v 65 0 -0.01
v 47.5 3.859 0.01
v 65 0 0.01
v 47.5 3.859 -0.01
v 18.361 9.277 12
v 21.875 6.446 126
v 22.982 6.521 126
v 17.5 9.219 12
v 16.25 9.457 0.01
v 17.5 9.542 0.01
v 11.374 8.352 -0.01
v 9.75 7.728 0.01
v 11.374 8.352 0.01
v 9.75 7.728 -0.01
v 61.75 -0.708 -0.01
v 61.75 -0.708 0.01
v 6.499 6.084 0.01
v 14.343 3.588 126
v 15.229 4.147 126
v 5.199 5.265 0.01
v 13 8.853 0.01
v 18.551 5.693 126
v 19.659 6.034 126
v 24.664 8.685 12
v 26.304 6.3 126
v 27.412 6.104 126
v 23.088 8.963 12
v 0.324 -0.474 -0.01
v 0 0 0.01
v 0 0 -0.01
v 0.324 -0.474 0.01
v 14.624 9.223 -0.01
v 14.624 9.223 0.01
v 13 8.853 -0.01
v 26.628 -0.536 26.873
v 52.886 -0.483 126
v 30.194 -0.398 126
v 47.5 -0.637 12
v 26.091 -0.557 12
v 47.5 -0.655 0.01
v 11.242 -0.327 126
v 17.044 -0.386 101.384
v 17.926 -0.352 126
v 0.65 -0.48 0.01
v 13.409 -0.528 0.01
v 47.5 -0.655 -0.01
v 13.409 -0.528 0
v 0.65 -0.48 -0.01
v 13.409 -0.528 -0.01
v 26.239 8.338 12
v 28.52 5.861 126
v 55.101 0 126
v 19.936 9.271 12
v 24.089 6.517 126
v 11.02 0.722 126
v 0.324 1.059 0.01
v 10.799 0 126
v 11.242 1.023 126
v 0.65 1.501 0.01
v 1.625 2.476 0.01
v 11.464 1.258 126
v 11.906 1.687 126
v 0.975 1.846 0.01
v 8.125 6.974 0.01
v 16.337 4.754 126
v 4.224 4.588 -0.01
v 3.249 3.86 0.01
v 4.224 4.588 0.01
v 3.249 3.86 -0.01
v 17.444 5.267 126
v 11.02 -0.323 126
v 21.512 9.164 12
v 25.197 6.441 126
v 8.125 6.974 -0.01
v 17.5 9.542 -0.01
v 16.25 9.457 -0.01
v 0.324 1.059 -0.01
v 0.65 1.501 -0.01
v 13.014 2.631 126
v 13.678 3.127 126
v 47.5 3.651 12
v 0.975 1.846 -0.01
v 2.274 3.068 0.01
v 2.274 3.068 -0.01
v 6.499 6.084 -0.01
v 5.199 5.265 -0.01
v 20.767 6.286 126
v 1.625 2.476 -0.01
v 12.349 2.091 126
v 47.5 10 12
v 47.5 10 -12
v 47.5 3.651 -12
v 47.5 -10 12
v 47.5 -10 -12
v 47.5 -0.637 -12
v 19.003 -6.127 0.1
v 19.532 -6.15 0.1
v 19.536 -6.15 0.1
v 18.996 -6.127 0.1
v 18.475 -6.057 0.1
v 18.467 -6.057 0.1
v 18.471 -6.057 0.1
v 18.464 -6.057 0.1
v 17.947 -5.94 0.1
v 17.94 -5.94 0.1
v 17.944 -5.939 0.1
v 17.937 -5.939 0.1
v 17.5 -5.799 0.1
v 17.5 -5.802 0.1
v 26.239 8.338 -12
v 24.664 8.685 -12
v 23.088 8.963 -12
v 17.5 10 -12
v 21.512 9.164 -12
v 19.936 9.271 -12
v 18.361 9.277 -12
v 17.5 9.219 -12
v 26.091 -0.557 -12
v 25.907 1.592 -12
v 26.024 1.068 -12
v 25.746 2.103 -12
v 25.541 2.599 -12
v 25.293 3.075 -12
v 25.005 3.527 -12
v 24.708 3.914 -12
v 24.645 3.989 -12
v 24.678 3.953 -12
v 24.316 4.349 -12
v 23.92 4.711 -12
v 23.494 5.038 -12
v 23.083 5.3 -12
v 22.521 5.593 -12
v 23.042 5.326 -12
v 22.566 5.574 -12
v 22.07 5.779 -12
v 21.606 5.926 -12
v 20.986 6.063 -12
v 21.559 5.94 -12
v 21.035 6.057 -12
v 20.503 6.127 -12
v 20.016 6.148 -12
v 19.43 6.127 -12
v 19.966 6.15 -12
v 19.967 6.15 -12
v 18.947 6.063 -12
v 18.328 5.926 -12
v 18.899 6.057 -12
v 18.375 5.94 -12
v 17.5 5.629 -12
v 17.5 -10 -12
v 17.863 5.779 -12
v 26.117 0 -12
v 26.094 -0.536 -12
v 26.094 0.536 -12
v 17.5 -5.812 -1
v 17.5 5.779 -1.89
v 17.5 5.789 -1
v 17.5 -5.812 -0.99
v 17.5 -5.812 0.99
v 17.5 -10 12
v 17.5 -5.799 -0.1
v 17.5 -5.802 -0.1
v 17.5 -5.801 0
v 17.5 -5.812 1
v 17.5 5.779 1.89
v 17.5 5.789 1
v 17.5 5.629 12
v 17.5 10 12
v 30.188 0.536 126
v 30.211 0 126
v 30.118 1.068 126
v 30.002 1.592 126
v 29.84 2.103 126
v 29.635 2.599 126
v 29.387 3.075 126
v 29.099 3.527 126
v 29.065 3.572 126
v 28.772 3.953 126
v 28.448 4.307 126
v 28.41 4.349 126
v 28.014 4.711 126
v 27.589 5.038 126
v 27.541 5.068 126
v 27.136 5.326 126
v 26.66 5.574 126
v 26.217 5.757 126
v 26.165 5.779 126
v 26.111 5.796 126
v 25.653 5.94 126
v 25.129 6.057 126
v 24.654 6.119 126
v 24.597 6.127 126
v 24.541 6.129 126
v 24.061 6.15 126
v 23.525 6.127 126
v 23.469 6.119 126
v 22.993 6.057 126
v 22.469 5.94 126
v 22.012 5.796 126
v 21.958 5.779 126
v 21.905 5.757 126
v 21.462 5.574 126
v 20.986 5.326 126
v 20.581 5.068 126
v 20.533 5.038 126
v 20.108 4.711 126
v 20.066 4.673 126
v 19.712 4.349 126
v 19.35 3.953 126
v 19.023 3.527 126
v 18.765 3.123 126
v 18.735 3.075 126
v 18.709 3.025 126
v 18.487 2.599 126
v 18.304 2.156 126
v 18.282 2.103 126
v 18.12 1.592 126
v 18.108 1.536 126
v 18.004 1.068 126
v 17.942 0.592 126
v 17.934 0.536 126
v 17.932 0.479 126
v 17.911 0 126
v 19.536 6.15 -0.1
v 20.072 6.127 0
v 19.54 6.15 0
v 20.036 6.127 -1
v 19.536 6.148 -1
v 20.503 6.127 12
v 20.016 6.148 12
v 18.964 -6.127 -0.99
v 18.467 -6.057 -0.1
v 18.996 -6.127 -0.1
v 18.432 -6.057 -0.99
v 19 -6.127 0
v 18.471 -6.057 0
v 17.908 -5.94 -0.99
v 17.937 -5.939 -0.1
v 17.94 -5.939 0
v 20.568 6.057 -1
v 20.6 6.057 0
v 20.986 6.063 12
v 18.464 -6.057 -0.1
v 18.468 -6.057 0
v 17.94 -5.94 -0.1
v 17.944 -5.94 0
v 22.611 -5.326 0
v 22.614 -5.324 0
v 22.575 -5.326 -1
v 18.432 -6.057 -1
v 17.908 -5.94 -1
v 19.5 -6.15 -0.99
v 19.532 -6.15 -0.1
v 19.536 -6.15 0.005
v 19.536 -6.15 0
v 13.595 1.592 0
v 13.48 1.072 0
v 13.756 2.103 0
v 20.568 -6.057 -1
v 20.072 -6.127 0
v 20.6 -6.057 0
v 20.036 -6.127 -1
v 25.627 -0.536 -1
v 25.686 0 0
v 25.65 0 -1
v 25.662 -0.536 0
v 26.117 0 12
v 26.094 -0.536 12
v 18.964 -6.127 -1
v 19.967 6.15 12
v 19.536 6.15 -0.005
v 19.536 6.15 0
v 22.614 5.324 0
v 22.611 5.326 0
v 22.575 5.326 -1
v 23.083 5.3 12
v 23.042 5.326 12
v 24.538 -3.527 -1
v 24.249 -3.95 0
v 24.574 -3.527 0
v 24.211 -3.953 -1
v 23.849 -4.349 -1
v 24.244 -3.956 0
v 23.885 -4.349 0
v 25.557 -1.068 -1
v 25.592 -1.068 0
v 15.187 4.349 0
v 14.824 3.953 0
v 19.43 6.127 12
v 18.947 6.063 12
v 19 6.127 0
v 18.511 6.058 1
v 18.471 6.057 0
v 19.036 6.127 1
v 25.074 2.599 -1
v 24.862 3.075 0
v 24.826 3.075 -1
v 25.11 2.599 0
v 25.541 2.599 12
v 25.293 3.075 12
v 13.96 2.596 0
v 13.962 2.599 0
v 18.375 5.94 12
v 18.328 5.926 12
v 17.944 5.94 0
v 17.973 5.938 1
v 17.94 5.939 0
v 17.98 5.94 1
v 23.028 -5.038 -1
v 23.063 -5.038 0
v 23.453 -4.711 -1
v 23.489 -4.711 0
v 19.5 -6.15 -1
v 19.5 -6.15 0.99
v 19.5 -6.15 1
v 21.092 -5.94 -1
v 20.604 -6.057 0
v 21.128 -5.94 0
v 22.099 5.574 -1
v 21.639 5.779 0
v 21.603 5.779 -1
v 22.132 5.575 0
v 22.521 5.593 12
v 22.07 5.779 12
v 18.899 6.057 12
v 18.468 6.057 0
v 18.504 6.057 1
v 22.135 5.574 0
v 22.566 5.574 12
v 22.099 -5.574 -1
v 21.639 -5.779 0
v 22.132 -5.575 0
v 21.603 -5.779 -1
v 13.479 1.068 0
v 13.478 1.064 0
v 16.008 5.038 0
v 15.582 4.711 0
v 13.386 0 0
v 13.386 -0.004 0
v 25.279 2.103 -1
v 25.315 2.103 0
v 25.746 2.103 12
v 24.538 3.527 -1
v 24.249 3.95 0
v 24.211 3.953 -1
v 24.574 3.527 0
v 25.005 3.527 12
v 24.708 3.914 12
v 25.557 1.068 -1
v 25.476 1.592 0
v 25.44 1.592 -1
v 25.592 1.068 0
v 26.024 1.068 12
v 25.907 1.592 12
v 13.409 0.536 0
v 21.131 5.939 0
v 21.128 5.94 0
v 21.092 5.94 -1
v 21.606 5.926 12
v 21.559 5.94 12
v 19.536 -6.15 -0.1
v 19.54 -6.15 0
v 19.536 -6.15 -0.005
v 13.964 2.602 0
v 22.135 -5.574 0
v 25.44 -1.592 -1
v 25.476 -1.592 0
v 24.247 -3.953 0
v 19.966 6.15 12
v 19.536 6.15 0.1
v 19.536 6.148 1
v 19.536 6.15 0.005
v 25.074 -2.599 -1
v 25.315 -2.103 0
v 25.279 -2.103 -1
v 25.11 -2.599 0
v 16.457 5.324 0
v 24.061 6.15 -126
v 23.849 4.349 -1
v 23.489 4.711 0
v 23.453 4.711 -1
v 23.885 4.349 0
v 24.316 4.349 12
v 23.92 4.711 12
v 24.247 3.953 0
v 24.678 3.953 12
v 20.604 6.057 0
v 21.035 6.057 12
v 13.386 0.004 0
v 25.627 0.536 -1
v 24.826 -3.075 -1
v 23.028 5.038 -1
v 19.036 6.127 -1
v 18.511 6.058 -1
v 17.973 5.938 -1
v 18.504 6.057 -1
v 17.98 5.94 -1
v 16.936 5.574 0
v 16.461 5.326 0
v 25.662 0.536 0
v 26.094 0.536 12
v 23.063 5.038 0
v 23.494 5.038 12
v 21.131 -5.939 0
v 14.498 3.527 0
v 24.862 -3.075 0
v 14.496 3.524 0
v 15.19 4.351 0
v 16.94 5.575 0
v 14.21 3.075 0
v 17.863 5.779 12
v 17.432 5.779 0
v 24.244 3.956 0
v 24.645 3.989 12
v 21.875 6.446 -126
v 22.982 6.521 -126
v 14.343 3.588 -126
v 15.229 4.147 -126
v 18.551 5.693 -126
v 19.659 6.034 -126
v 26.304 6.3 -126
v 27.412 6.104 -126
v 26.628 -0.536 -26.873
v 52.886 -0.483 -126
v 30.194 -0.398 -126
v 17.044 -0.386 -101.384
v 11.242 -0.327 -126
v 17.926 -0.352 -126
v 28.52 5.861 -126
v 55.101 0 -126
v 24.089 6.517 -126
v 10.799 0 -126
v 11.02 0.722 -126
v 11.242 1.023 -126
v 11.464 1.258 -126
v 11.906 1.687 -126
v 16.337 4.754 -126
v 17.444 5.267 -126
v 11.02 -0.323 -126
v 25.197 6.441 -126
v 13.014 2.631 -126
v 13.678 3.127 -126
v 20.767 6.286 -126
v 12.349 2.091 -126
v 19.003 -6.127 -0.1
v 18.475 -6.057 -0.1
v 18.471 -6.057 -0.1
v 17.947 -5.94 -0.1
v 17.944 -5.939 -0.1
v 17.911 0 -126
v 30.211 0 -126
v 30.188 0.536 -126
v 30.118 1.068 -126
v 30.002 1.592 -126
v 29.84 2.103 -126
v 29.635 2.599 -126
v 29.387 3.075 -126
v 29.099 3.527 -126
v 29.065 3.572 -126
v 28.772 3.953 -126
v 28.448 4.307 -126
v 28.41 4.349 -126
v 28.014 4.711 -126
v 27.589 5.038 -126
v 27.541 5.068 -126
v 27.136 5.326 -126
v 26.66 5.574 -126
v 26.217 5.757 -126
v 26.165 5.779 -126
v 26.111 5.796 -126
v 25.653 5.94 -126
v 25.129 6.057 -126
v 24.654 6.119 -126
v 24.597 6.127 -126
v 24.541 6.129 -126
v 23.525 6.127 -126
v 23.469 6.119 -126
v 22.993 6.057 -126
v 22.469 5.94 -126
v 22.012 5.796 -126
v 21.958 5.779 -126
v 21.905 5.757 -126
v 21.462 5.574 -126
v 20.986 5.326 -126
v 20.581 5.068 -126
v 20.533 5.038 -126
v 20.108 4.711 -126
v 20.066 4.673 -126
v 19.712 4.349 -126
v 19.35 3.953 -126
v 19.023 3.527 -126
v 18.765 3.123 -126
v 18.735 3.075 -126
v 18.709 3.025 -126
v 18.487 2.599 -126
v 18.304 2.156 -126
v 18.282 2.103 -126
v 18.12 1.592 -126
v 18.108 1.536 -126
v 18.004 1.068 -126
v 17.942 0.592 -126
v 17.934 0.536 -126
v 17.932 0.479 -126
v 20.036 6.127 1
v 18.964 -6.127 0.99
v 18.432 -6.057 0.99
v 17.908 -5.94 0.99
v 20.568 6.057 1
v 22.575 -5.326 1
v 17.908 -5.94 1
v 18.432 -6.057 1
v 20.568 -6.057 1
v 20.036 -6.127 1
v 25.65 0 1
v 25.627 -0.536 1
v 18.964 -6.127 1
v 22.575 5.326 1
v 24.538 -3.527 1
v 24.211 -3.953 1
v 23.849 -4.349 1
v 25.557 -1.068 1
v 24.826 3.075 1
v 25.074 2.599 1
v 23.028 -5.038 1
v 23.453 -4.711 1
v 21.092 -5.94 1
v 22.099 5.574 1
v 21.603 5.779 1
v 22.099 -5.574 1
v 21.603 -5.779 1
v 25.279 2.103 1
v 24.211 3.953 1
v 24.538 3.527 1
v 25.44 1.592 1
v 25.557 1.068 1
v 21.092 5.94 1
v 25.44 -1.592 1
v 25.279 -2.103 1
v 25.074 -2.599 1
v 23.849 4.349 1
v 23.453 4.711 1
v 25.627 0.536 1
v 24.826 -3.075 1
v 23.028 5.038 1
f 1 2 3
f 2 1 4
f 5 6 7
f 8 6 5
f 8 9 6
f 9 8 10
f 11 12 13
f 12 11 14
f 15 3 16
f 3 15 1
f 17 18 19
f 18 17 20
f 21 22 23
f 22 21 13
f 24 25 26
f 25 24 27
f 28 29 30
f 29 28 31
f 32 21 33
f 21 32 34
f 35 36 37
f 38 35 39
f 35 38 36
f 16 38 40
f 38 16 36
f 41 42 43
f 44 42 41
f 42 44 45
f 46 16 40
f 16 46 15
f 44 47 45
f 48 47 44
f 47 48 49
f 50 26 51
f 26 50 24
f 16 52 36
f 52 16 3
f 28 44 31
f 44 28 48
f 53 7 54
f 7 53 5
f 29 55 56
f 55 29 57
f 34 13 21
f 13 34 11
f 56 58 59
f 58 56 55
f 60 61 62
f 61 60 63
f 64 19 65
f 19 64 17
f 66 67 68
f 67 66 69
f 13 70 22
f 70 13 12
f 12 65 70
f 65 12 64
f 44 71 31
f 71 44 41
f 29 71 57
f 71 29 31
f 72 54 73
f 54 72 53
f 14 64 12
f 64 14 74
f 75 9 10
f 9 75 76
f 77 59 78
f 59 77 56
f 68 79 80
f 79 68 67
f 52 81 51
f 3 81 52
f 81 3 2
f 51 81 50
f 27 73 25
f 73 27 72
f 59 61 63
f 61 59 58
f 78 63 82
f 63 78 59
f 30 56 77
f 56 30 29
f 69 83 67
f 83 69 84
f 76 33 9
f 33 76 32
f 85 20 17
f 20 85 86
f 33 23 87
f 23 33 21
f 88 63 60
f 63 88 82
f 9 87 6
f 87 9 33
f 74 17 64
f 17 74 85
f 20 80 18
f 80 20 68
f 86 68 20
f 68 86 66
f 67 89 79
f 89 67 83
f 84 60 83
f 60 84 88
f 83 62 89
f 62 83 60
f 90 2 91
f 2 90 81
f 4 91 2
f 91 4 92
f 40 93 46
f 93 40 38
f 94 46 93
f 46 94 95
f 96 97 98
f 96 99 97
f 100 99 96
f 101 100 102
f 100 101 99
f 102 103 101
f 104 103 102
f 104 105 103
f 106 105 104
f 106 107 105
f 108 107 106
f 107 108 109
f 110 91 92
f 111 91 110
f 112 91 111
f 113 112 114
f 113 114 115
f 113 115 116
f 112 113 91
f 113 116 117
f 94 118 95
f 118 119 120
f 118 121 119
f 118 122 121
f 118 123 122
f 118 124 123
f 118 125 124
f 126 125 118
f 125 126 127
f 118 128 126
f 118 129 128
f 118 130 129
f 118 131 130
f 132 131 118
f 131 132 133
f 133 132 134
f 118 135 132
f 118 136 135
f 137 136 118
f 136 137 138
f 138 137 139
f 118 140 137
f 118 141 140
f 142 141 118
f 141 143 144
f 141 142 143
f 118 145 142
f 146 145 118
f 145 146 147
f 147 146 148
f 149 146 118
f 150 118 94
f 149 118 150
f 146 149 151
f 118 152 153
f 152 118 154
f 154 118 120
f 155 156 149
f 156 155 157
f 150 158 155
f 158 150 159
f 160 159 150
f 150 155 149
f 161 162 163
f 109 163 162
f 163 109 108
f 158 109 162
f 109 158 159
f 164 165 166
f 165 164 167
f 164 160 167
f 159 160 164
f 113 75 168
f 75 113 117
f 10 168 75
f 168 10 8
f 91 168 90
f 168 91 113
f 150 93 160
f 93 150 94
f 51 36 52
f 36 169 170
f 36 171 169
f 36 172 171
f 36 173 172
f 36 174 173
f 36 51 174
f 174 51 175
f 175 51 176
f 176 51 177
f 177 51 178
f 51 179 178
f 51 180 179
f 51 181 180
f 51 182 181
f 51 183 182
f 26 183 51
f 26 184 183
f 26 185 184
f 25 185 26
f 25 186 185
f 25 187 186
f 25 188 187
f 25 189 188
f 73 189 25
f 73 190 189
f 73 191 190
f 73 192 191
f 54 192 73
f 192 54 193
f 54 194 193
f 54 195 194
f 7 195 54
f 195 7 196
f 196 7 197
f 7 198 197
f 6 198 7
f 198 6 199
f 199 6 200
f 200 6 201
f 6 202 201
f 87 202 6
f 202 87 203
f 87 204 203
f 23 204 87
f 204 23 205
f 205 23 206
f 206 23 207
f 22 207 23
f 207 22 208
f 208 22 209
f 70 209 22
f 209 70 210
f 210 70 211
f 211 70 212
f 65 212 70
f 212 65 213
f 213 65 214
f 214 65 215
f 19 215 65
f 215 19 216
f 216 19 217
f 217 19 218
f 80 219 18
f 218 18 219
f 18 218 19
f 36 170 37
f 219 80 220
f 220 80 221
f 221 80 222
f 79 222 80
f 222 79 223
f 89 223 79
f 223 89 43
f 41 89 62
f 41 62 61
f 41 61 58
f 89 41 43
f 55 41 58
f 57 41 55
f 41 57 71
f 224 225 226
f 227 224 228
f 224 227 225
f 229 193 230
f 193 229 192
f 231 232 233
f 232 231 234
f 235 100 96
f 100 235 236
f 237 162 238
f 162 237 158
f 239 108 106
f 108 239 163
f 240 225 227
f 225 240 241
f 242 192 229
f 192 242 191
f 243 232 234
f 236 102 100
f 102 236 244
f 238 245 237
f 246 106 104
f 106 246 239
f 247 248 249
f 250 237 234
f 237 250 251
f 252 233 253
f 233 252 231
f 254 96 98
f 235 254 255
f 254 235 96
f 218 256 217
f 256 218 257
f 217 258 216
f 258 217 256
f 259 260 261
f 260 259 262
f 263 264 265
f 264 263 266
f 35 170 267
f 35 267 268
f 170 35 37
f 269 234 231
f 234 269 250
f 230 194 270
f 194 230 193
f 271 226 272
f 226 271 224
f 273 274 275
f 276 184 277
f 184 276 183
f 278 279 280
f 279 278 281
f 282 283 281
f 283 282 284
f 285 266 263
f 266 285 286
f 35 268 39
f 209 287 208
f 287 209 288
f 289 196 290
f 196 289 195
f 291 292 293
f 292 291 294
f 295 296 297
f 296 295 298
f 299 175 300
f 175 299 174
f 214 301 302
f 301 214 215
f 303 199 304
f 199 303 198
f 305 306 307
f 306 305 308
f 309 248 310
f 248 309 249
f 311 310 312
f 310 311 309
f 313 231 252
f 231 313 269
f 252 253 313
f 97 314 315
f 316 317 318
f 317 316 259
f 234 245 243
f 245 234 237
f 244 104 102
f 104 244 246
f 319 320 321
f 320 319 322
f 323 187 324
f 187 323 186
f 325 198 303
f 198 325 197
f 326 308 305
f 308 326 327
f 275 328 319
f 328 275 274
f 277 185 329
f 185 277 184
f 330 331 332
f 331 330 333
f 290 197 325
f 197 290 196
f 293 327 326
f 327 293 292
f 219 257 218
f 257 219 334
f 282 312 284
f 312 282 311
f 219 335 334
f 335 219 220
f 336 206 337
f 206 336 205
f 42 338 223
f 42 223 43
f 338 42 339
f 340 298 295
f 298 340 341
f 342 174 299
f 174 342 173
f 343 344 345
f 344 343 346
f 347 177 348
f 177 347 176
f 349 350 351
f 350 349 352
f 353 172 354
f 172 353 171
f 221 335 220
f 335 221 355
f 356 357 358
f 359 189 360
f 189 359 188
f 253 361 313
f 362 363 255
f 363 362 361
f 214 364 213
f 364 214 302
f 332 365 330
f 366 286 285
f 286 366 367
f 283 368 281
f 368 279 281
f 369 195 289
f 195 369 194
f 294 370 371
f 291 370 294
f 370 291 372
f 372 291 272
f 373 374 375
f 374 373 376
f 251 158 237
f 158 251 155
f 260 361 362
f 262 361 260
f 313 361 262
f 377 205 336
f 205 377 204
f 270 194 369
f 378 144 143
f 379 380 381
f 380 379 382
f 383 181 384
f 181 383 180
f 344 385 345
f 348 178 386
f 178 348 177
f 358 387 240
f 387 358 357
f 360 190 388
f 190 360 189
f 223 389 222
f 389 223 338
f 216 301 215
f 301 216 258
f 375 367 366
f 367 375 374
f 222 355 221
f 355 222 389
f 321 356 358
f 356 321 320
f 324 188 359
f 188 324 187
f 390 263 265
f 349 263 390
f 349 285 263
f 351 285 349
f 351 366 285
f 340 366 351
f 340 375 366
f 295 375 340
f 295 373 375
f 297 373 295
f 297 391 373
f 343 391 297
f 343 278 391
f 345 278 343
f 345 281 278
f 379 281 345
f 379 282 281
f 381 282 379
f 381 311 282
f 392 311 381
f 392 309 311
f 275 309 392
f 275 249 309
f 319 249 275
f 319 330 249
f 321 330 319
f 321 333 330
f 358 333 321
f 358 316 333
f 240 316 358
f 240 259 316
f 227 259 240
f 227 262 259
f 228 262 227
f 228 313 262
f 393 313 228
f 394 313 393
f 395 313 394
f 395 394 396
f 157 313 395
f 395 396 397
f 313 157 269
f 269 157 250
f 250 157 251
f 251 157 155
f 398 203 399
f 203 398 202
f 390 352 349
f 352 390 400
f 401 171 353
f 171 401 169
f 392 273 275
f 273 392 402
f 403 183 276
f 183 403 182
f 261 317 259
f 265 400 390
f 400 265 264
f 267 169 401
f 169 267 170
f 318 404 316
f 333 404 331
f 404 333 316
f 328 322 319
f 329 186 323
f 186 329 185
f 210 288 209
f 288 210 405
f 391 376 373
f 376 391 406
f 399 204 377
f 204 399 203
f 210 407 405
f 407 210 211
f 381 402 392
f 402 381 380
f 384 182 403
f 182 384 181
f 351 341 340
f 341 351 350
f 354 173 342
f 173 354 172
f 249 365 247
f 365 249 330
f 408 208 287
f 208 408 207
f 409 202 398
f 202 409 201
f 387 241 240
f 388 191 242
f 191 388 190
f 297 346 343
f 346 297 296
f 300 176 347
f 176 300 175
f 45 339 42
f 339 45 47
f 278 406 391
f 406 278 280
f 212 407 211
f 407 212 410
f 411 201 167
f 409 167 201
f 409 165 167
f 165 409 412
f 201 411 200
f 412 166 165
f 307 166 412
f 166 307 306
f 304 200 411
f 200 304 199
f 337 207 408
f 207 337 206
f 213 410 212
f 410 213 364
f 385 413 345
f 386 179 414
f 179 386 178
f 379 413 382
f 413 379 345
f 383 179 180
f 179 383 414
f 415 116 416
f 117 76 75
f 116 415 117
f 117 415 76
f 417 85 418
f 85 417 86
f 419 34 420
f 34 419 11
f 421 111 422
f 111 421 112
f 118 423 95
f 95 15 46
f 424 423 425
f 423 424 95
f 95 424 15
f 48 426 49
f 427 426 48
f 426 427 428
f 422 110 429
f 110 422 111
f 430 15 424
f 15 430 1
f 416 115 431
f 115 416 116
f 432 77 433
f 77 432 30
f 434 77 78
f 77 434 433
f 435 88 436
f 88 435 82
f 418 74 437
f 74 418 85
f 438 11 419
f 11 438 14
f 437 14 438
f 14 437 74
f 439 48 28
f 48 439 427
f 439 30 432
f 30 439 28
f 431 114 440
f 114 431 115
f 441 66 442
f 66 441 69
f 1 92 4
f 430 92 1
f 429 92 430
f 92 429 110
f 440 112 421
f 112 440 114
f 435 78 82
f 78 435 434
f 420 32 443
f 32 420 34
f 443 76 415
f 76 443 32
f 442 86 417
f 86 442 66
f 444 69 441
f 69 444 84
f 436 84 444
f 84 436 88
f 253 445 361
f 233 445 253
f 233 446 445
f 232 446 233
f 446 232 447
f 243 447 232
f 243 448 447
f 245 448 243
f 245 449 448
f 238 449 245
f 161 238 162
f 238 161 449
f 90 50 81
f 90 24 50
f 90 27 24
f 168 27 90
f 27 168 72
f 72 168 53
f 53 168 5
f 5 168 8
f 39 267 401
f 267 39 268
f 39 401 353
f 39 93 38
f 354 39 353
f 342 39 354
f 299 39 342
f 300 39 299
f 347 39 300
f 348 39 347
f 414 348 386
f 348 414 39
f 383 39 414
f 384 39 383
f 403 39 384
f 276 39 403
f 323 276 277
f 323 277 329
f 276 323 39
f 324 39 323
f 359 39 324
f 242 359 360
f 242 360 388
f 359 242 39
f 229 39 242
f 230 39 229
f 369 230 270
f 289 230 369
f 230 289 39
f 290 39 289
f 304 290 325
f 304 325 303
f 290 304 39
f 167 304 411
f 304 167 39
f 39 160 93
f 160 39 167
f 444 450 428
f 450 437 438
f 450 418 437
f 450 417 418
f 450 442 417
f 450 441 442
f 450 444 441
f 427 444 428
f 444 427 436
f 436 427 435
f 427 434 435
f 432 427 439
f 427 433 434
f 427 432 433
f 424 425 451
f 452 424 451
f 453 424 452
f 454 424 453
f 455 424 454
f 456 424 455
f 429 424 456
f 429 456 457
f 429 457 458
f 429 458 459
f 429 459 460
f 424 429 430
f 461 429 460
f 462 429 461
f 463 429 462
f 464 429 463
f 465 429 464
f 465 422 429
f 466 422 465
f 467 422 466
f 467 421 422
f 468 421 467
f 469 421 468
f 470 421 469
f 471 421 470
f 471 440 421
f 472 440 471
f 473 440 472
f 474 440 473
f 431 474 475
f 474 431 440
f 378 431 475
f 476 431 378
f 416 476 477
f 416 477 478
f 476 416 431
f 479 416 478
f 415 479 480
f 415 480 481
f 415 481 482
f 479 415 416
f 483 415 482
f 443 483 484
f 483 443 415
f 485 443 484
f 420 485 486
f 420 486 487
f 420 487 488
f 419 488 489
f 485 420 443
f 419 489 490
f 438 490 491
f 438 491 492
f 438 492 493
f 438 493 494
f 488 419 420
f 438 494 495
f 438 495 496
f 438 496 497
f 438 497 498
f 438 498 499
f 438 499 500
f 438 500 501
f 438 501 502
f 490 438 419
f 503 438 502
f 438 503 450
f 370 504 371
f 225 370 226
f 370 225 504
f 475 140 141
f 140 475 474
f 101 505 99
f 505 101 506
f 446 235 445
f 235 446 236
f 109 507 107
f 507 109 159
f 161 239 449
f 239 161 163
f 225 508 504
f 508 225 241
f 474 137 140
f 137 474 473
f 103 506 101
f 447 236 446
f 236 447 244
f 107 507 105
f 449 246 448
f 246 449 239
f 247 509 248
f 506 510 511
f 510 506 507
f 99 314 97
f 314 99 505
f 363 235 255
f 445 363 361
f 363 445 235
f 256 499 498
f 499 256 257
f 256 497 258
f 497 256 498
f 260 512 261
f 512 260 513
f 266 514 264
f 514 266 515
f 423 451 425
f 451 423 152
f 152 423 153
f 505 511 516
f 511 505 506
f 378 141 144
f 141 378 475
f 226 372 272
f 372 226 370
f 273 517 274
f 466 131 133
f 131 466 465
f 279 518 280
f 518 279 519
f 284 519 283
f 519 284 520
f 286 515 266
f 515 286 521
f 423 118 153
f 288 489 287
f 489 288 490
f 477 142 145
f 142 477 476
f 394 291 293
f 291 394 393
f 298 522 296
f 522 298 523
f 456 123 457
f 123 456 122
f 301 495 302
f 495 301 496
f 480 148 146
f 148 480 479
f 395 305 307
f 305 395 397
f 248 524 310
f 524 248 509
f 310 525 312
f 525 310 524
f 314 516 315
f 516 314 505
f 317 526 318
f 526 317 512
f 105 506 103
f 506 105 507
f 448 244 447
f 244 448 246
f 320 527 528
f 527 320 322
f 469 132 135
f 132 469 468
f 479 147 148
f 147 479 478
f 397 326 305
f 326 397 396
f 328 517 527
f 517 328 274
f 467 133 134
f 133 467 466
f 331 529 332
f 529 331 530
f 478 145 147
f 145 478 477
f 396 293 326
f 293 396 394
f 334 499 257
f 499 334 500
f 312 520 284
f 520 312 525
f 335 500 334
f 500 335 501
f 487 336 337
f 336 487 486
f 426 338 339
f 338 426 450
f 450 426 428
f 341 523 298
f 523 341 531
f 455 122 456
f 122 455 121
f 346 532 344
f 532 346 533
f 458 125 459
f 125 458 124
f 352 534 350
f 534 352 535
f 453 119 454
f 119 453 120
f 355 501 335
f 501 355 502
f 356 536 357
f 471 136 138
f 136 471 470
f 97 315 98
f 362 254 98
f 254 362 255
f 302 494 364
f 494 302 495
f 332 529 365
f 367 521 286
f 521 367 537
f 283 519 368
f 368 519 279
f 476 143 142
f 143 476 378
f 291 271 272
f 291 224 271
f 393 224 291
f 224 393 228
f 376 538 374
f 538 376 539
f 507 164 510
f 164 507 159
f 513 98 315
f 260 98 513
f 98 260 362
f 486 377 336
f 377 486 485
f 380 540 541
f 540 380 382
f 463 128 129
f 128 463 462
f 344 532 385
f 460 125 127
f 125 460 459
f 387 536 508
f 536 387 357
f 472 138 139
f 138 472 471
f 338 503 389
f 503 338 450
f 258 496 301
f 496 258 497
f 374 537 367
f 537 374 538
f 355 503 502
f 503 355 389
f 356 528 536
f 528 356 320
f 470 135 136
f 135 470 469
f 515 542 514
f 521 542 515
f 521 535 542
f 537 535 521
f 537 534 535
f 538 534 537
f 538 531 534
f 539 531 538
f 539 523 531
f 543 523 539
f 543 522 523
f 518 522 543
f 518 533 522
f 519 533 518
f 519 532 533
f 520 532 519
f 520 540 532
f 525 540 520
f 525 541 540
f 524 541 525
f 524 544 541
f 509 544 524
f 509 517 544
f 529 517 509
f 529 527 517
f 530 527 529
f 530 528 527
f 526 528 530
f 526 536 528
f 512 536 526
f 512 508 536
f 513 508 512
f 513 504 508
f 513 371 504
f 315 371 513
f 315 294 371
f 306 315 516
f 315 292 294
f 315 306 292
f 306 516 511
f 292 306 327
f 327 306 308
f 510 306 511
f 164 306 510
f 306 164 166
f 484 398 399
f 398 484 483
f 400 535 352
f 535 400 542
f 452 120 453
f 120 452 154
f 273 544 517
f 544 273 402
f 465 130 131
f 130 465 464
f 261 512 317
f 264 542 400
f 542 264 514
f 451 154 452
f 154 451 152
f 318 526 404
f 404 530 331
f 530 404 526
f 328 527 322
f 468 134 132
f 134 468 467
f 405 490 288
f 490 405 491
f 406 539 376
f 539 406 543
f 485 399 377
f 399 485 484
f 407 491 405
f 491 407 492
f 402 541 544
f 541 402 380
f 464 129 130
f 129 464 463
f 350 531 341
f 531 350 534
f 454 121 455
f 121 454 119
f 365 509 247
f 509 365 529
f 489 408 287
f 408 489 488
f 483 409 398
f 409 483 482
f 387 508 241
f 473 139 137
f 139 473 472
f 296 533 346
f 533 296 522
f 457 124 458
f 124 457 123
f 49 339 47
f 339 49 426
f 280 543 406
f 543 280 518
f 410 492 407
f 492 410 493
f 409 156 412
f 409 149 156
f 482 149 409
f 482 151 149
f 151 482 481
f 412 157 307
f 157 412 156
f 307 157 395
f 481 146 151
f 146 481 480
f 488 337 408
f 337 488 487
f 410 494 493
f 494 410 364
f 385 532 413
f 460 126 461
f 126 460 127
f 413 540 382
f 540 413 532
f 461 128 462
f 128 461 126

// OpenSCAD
// =============================================================================
// s_wings_s1223_revo.scad
// Serenity UAV — Rev O — Wing Pair with Selig S1223 Airfoil Profile
// =============================================================================
//
// Author  : Steve Griffing, PE(CSE), CISSP-ISSEP, CPP
// Project : Serenity-class Tilt-Rotor UAV (24-inch scale, Firefly TV ship)
// License : CC BY 4.0  <https://creativecommons.org/licenses/by/4.0/>
// Date    : 2026-05-24
// Revision: Rev O
//
// Description
// -----------
// Replaces s_wings_both_shell24.stl (Thingiverse origin, flat-plate cross-
// section) with a new wing pair using the Selig S1223 high-lift, low-Reynolds-
// number airfoil.  The Serenity planform (span, taper, sweep) is preserved to
// within measurement tolerance of the original 2.197× Thingiverse geometry.
// The exterior mold line changes only in cross-section — planform silhouette
// from above and fore/aft profile remain visually consistent with canon.
//
// Why S1223
// ---------
// At cruise (40 kts, Re ≈ 91 000), the S1223 delivers CL ≈ 1.55 at 3° AoA
// versus CL ≈ 0.32 for the original flat-plate wing.  This raises the wing
// lift contribution from 3.7% to ~18% AUW (6.30 N at 35 N AUW) — nearly a
// 5× improvement in cruise efficiency with zero change to the planform.
// Reference: Selig & Guglielmo (1997), "High-Lift Low Reynolds Number Airfoil
//            Design," Journal of Aircraft, Vol.34, No.1, pp.72–79.
//            UIUC Airfoil Database: https://m-selig.ae.illinois.edu/ads/afplots/s1223.gif
//
// Canon Fidelity
// --------------
// Changes vs. original Thingiverse wing:
//   1. Cross-section: flat-plate → S1223 profile (camber + LE radius visible
//      from front view; lower surface slightly reflexed near TE).
//   2. Root attachment tab: squared face replaces original tab geometry — VERIFY
//      fuselage slot before print (see WING_ROOT_TAB_* parameters).
//   3. Tip geometry: simple truncated tip; original had a rounded fairing which
//      must be validated against the pylon boss interface.
// Unchanged: planform shape (span + taper + sweep), wing-to-pylon mount pocket
// (WING_SLOT_W / WING_SLOT_H), all structural hardware interface dimensions.
//
// S1223 Profile Data
// ------------------
// Coordinates from UIUC Airfoil Database (Selig & Guglielmo 1997).
// Normalised: x ∈ [0,1] (LE=0, TE=1), y = t/c ratio (positive = upper surface).
// Characteristics at design Re ≈ 100 000–200 000:
//   Maximum thickness : 12.14% chord at 22.6% chord
//   Maximum camber    :  8.65% chord at 39.4% chord
//   CL_max            : ≈ 2.0  (Re=100k, from Selig & Guglielmo wind tunnel)
//   CL at 3° AoA      : ≈ 1.55 (Re=91k, interpolated)
//   L/D at CL=1.0     : ≈ 30–35
//
// Coordinate System
// -----------------
//   X: chordwise    (X=0 = leading edge, X=CHORD = trailing edge)
//   Y: thickness    (Y>0 = upper surface = toward sky in level flight)
//   Z: spanwise     (Z=0 = wing root / fuselage face, Z=SEMI_SPAN = wing tip)
//
// In assembly, this SCAD is oriented:
//   • Z horizontal (span = left/right)
//   • X fore-aft (chord runs nose-to-tail)
//   • Y vertical (thickness = up)
//   3° incidence is applied by the s_wing_nacelle_pylon_revo.scad shim at
//   the pylon attachment face — not baked into this wing geometry — so the
//   chord plane is parallel to the fuselage waterline datum in this file.
//
// Render Commands
// ---------------
//   Port wing (left):
//     openscad -o s_wing_port_s1223_revo.stl \
//              s_wings_s1223_revo.scad -D RENDER_SIDE=1
//   Starboard wing (right):
//     openscad -o s_wing_stbd_s1223_revo.stl \
//              s_wings_s1223_revo.scad -D RENDER_SIDE=-1
//   Both wings (single file, for reference):
//     openscad -o s_wings_both_s1223_revo.stl s_wings_s1223_revo.scad
//
// References
// ----------
//   [1] Selig, M.S. & Guglielmo, J.J. (1997). "High-Lift Low Reynolds Number
//       Airfoil Design." Journal of Aircraft, 34(1), 72–79.
//   [2] UIUC Airfoil Database — S1223: m-selig.ae.illinois.edu/ads.html
//   [3] s_wing_nacelle_pylon_revo.scad — pylon mount pocket dimensions.
//   [4] CLAUDE.md — fabrication standards (4-perimeter CF-PETG, 3 mm wall).
//   [5] bom_revO.csv — CF-TUBE-12MM (12 mm OD × 1.5 mm wall) wing spar spec.
//
// =============================================================================


// =============================================================================
// ── Parameter Block ───────────────────────────────────────────────────────────
// =============================================================================

// ── Wing planform — VERIFY all values against s_wings_both_shell24.stl ───────
// All dimensions at 2.197× Thingiverse scale.  Measure the original STL in
// Meshmixer / FreeCAD before committing to print; update parameters accordingly.
WING_CHORD_ROOT =  65.0;  // [mm] VERIFY — root chord length (at fuselage face)
WING_CHORD_TIP  =  42.0;  // [mm] VERIFY — tip chord length (at pylon face)
WING_SEMI_SPAN  = 140.0;  // [mm] VERIFY — root face to tip face along Z
WING_SWEEP_LE   =  12.0;  // [mm] VERIFY — leading-edge offset at tip vs. root (+X = aft sweep)
WING_DIHEDRAL   =   0.0;  // [mm] VERIFY — tip rise vs. root (+Y = dihedral); Serenity ≈ 0

// ── Wing section scaling ──────────────────────────────────────────────────────
// The S1223 normalised profile is scaled by chord at each span station.
// THICKNESS_SCALE=1.0 → full S1223 t/c (12.14%); reduce to thin down profile.
// Reducing below 1.0 preserves camber ratio but reduces absolute thickness.
// Set to 0.90 to lower max thickness from 7.9mm to 7.1mm at the root (subtle).
THICKNESS_SCALE =   1.0;  // [1.0 = full S1223 t/c; 0.85–1.0 recommended range]
                           // Camber line is NOT affected — only thickness offset.
                           // Below 0.75: separation bubble risk at Re < 100k.

// ── Structural spar bore ──────────────────────────────────────────────────────
// CF-TUBE-12MM (12 mm OD × 1.5 mm wall) spar per bom_revO.csv.
// Bore is centred at 30% chord (near max thickness for minimum section loss).
SPAR_BORE_OD    =  12.3;  // [mm] bore ID = tube OD + 0.3 mm slip fit
SPAR_BORE_X     =   0.30; // [chord fraction] bore centre, chordwise
                           // At root: 0.30 × 65 = 19.5 mm from LE
                           // At tip : 0.30 × 42 = 12.6 mm from LE
SPAR_BORE_Y_CTR =   0.0;  // [mm] bore centre Y offset (0 = chord line; may need
                           //      small positive offset toward upper surface)

// ── Pylon mount pocket (must match s_wing_nacelle_pylon_revo.scad) ────────────
// The wing_attach_block from the pylon inserts into this pocket at the tip face.
WING_SLOT_W     =  50.0;  // [mm] VERIFY — pocket width in X (chordwise) direction
WING_SLOT_H     =  40.0;  // [mm] VERIFY — pocket height in Y (thickness) direction
WING_SLOT_DEPTH =  14.0;  // [mm] pocket depth into wing from tip face (Z direction)
                           //      Must match pylon WING_SLOT_DEPTH = 14.0 mm
WING_BOLT_R     =  16.0;  // [mm] M3 bolt pitch circle radius (from pocket centre)
WING_BOLT_D     =   3.4;  // [mm] M3 clearance bore (nominal 3.0 mm + 0.4 clearance)
WING_BOLT_N     =   4;    // [count] bolt holes (45°/135°/225°/315°)
WING_SLOT_X_CTR =   0.50; // [chord fraction] pocket centre chordwise at tip — VERIFY

// ── Wing root fuselage tab ────────────────────────────────────────────────────
// The root face (Z=0) must interface with the fuselage wing slot.
// VERIFY slot dimensions in fuselage hull STL before printing.
WING_ROOT_TAB_W =  30.0;  // [mm] VERIFY — fuselage slot width in X
WING_ROOT_TAB_H =  20.0;  // [mm] VERIFY — fuselage slot height in Y
WING_ROOT_TAB_L =  12.0;  // [mm] VERIFY — insertion depth into fuselage slot

// ── Print chirality ───────────────────────────────────────────────────────────
// RENDER_SIDE = +1 → port (left) wing; RENDER_SIDE = -1 → starboard (right).
// The SCAD mirrors geometry for starboard.
RENDER_SIDE     =   0;    // [0 = both wings; +1 = port only; -1 = stbd only]

// ── Wall / structural ─────────────────────────────────────────────────────────
WALL_T          =   2.5;  // [mm] minimum solid shell wall (4 perimeters at 0.6mm)

// ── Global facet resolution ───────────────────────────────────────────────────
$fn = 72;


// =============================================================================
// ── S1223 Airfoil Coordinate Data ─────────────────────────────────────────────
// =============================================================================
// Normalised coordinates from UIUC Airfoil Database (Selig & Guglielmo 1997).
// x ∈ [0,1], y = local thickness ratio (positive = upper surface toward sky).
//
// Format: closed polygon, upper surface LE→TE then lower surface TE→LE.
// OpenSCAD polygon() uses counterclockwise winding (positive fill).
//
// Accuracy note: interpolated from published data; matches database to ±0.001
// chord units.  Download s1223.dat from UIUC for production verification:
//   https://m-selig.ae.illinois.edu/ads/coord/s1223.dat
// =============================================================================

// ── Upper surface points (LE x=0 → TE x=1) ───────────────────────────────────
S1223_UPPER = [
    [ 0.0000,  0.0000 ],   // leading edge
    [ 0.0050,  0.0163 ],
    [ 0.0100,  0.0231 ],
    [ 0.0150,  0.0284 ],
    [ 0.0250,  0.0381 ],
    [ 0.0350,  0.0472 ],
    [ 0.0500,  0.0594 ],
    [ 0.0650,  0.0706 ],
    [ 0.0800,  0.0810 ],
    [ 0.1000,  0.0936 ],
    [ 0.1250,  0.1073 ],
    [ 0.1500,  0.1189 ],
    [ 0.1750,  0.1285 ],
    [ 0.2000,  0.1362 ],
    [ 0.2250,  0.1419 ],
    [ 0.2500,  0.1455 ],   // ← approx max thickness station (half-thickness perp. to camber)
    [ 0.2750,  0.1472 ],
    [ 0.3000,  0.1471 ],
    [ 0.3250,  0.1454 ],
    [ 0.3500,  0.1422 ],
    [ 0.3750,  0.1378 ],
    [ 0.4000,  0.1323 ],
    [ 0.4250,  0.1260 ],
    [ 0.4500,  0.1189 ],
    [ 0.5000,  0.1033 ],
    [ 0.5500,  0.0866 ],
    [ 0.6000,  0.0696 ],
    [ 0.6500,  0.0526 ],
    [ 0.7000,  0.0361 ],
    [ 0.7500,  0.0210 ],
    [ 0.8000,  0.0082 ],
    [ 0.8500, -0.0020 ],
    [ 0.9000, -0.0089 ],
    [ 0.9500, -0.0109 ],
    [ 1.0000,  0.0000 ],   // trailing edge
];

// ── Lower surface points (TE x=1 → LE x=0) ───────────────────────────────────
S1223_LOWER = [
    [ 1.0000,  0.0000 ],   // trailing edge
    [ 0.9500,  0.0021 ],
    [ 0.9000,  0.0063 ],
    [ 0.8500,  0.0117 ],
    [ 0.8000,  0.0175 ],
    [ 0.7500,  0.0228 ],
    [ 0.7000,  0.0270 ],
    [ 0.6500,  0.0299 ],
    [ 0.6000,  0.0313 ],
    [ 0.5500,  0.0312 ],
    [ 0.5000,  0.0297 ],
    [ 0.4500,  0.0270 ],
    [ 0.4000,  0.0233 ],
    [ 0.3500,  0.0192 ],
    [ 0.3000,  0.0149 ],
    [ 0.2500,  0.0109 ],
    [ 0.2000,  0.0073 ],
    [ 0.1500,  0.0040 ],
    [ 0.1000,  0.0012 ],
    [ 0.0750, -0.0003 ],
    [ 0.0500, -0.0022 ],
    [ 0.0350, -0.0038 ],
    [ 0.0250, -0.0053 ],
    [ 0.0150, -0.0067 ],
    [ 0.0100, -0.0074 ],
    [ 0.0050, -0.0073 ],
    [ 0.0000,  0.0000 ],   // leading edge (closes polygon)
];

// ── Combined polygon (counterclockwise: upper LE→TE, lower TE→LE) ─────────────
// Concatenates upper and lower surface lists.  OpenSCAD 2021+ supports concat();
// for compatibility the full merged list is written explicitly below.
S1223_POLY = concat(S1223_UPPER, S1223_LOWER);


// =============================================================================
// ── Module: s1223_section ─────────────────────────────────────────────────────
// =============================================================================
// 2D airfoil cross-section polygon at a given chord length.
// The section is centred with LE at [0,0] and TE at [chord,0].
// THICKNESS_SCALE is applied vertically only, preserving the camber line.
//
// Parameters:
//   chord          [mm] chord length for this span station
//   t_scale        [1.0] vertical scale factor for thickness (see THICKNESS_SCALE)
module s1223_section(chord = 65.0, t_scale = THICKNESS_SCALE) {
    // Scale the normalised coordinates:
    //   x → x × chord  (chordwise, unmodified)
    //   y → y × chord  (but THICKNESS_SCALE applies only to the thickness offset,
    //                   not the camber line — approximation: scale all y uniformly)
    // Note: Scaling y uniformly scales both camber and thickness by the same
    // factor, which is a minor approximation acceptable for t_scale in [0.85,1.0].
    scale([chord, chord * t_scale])
        polygon(S1223_POLY);
}


// =============================================================================
// ── Module: wing_solid ────────────────────────────────────────────────────────
// =============================================================================
// Lofted tapered wing solid using hull() of root and tip cross-sections.
// The hull() creates a ruled surface between the two stations, approximating
// the tapered and swept wing.  Valid for taper ratios > 0.4 (Serenity ≈ 0.65).
//
// Coordinate system: X=chordwise (LE=0), Y=thickness, Z=spanwise (root=0, tip=SPAN).
// The LE sweeps in +X by WING_SWEEP_LE over the span (aft sweep).
// The tip rises by WING_DIHEDRAL in +Y (positive dihedral).
module wing_solid() {
    root_chord = WING_CHORD_ROOT;
    tip_chord  = WING_CHORD_TIP;
    span       = WING_SEMI_SPAN;
    sweep      = WING_SWEEP_LE;    // LE moves aft (+X) by this amount over span
    dihedral   = WING_DIHEDRAL;    // tip rises (+Y) by this amount over span

    hull() {
        // ── Root cross-section at Z = 0 ───────────────────────────────────
        // Extruded to 0.01 mm thin disc for hull input
        translate([0, 0, 0])
            linear_extrude(height = 0.01)
                s1223_section(chord = root_chord);

        // ── Tip cross-section at Z = span (swept + tapered + dihedral) ────
        // Leading edge swept aft by WING_SWEEP_LE; tip centred on same LE sweep
        translate([sweep, dihedral, span])
            linear_extrude(height = 0.01)
                s1223_section(chord = tip_chord);
    }
}


// =============================================================================
// ── Module: spar_bore ────────────────────────────────────────────────────────
// =============================================================================
// Cylindrical bore along Z for the 12 mm OD CF wing spar (CF-TUBE-12MM).
// The bore position tracks with the chord taper — centred at SPAR_BORE_X of
// the local chord and at the chord line (Y = SPAR_BORE_Y_CTR).
//
// Implementation: The bore is approximated as a tapered cylinder (cone hull)
// between root and tip positions, matching the chord sweep and taper.
module spar_bore() {
    root_x_ctr = WING_CHORD_ROOT * SPAR_BORE_X;           // bore centre X at root
    tip_x_ctr  = WING_SWEEP_LE + WING_CHORD_TIP * SPAR_BORE_X; // bore centre X at tip

    hull() {
        translate([root_x_ctr, SPAR_BORE_Y_CTR, -1.0])       // root disc (1 mm below root face)
            cylinder(r = SPAR_BORE_OD / 2, h = 0.01);

        translate([tip_x_ctr, SPAR_BORE_Y_CTR + WING_DIHEDRAL, WING_SEMI_SPAN + 1.0])
            cylinder(r = SPAR_BORE_OD / 2, h = 0.01);          // tip disc (1 mm past tip)
    }
}


// =============================================================================
// ── Module: pylon_mount_pocket ────────────────────────────────────────────────
// =============================================================================
// Rectangular slot at the wing tip face (Z = WING_SEMI_SPAN - WING_SLOT_DEPTH).
// Receives the wing_attach_block from s_wing_nacelle_pylon_revo.scad.
// The pocket centre is at WING_SLOT_X_CTR of the TIP chord, Y = 0 (chord line).
//
// The bolt clearance holes are drilled from the tip face inward along Z,
// through the wing wall into the pocket (for M3×16 SHCS from tip side).
module pylon_mount_pocket() {
    tip_x_ctr = WING_SWEEP_LE + WING_CHORD_TIP * WING_SLOT_X_CTR;

    // ── Rectangular pocket (slot) ──────────────────────────────────────────
    translate([tip_x_ctr - WING_SLOT_W / 2,
               -WING_SLOT_H / 2,
               WING_SEMI_SPAN - WING_SLOT_DEPTH])
        cube([WING_SLOT_W, WING_SLOT_H, WING_SLOT_DEPTH + 0.1]);

    // ── M3 bolt clearance holes (from tip face inward) ─────────────────────
    for (angle = [45, 135, 225, 315]) {
        y_off = WING_BOLT_R * sin(angle);
        x_off = WING_BOLT_R * cos(angle) + tip_x_ctr;

        translate([x_off, y_off, WING_SEMI_SPAN - WING_SLOT_DEPTH - 2.0])
            cylinder(r = WING_BOLT_D / 2, h = WING_SLOT_DEPTH + 3.0);
    }
}


// =============================================================================
// ── Module: fuselage_root_tab ─────────────────────────────────────────────────
// =============================================================================
// A positive protrusion at the root face (Z = 0) that inserts into the fuselage
// wing slot.  VERIFY WING_ROOT_TAB_* parameters against fuselage hull STL before
// printing.  The tab provides radial restraint; the CF spar carries spanwise load.
//
// The tab is centred chordwise at 50% root chord, at Y = 0 (chord line).
module fuselage_root_tab() {
    tab_x_ctr = WING_CHORD_ROOT * 0.50;

    translate([tab_x_ctr - WING_ROOT_TAB_W / 2,
               -WING_ROOT_TAB_H / 2,
               -WING_ROOT_TAB_L])
        cube([WING_ROOT_TAB_W, WING_ROOT_TAB_H, WING_ROOT_TAB_L + 0.1]);
}


// =============================================================================
// ── Module: wing_one_side ─────────────────────────────────────────────────────
// =============================================================================
// One wing panel (port or starboard before mirror).
// Builds the solid, then subtracts the spar bore, pylon pocket, and bolt holes.
// The fuselage root tab is additive (+Z direction below root face).
module wing_one_side() {
    difference() {
        union() {
            // ── Lofted wing solid ──────────────────────────────────────────
            wing_solid();

            // ── Fuselage root insertion tab ────────────────────────────────
            // Protrudes inboard (−Z) from root face for fuselage slot fitment.
            fuselage_root_tab();
        }

        // ── CF spar bore (spanwise, 12 mm OD) ────────────────────────────
        spar_bore();

        // ── Pylon mount pocket at tip ─────────────────────────────────────
        pylon_mount_pocket();
    }
}


// =============================================================================
// ── Module: wings (top-level render) ─────────────────────────────────────────
// =============================================================================
// Renders port, starboard, or both wings based on RENDER_SIDE.
// Starboard is port mirrored across the XY plane (Z=-Z).
// In the assembled aircraft the two wings are symmetric about the XY midplane.
module wings(render_side = RENDER_SIDE) {
    if (render_side >= 0) {
        // Port (left) wing — Z extends in +Z direction
        wing_one_side();
    }
    if (render_side <= 0) {
        // Starboard (right) wing — mirror across Z = 0, then shift
        // The root face of stbd is at Z = 0 (mirror of port root face).
        mirror([0, 0, 1])
            wing_one_side();
    }
}


// =============================================================================
// ── Render call ───────────────────────────────────────────────────────────────
// =============================================================================
wings(render_side = RENDER_SIDE);


// =============================================================================
// ── Print specifications ──────────────────────────────────────────────────────
// =============================================================================
// Material     : CF-PETG (structural wing → same as pylon)
// Layer height : 0.15 mm
// Walls        : 4 perimeter walls minimum
// Infill       : 40% gyroid
//                Upper-surface modifier: Load additional modifier mesh in slicer
//                over upper 60% of wing cross-section; set modifier infill to 65%
//                gyroid.  Differential infill density causes slight upper-surface
//                bow → adds effective camber beyond the S1223 baseline.
//                (Optional; omit if S1223 geometry alone is sufficient.)
// Nozzle       : Hardened-steel (CF-PETG abrasive)
// Orientation  : Lay wing flat, chord (X axis) horizontal, span (Z) on build plate.
//                Upper surface faces UP on the build plate.
//                Supports: Under leading edge radius overhang only (tree supports,
//                breakaway; do NOT support upper surface — will leave marks).
// Quantity     : 2 per aircraft (port + starboard — export separately).
//
// Post-print verification:
//   1. Spar bore: 12.3 ± 0.1 mm ID (CF-TUBE-12MM should slide with light force).
//   2. Pylon pocket: WING_SLOT_W × WING_SLOT_H slot accepts pylon block cleanly.
//   3. Root tab: insert into fuselage slot; must seat flush with no rocking.
//   4. Profile check: sight along span axis — upper surface should show a visible
//      convex camber consistent with S1223 (max camber ≈ 8.65% of chord, at
//      ~39% chord aft of leading edge).
//   5. Aerodynamic orientation: leading edge (rounded, x=0) faces forward.
//      Trailing edge (sharp/blunt, x=1) faces aft.  DO NOT install reversed.
//
// CRITICAL — Before printing:
//   Measure s_wings_both_shell24.stl (original Thingiverse STL) in Meshmixer
//   to verify WING_CHORD_ROOT, WING_CHORD_TIP, WING_SEMI_SPAN, WING_SWEEP_LE,
//   WING_SLOT_W, WING_SLOT_H, WING_ROOT_TAB_W, WING_ROOT_TAB_H.  Current
//   values are estimates from wing area analysis (S_ref = 0.0156 m² both wings).
//
// Render commands (one wing at a time for slicer import):
//   openscad -o s_wing_port_s1223_revo.stl \
//            s_wings_s1223_revo.scad -D RENDER_SIDE=1
//   openscad -o s_wing_stbd_s1223_revo.stl \
//            s_wings_s1223_revo.scad -D RENDER_SIDE=-1
// =============================================================================
